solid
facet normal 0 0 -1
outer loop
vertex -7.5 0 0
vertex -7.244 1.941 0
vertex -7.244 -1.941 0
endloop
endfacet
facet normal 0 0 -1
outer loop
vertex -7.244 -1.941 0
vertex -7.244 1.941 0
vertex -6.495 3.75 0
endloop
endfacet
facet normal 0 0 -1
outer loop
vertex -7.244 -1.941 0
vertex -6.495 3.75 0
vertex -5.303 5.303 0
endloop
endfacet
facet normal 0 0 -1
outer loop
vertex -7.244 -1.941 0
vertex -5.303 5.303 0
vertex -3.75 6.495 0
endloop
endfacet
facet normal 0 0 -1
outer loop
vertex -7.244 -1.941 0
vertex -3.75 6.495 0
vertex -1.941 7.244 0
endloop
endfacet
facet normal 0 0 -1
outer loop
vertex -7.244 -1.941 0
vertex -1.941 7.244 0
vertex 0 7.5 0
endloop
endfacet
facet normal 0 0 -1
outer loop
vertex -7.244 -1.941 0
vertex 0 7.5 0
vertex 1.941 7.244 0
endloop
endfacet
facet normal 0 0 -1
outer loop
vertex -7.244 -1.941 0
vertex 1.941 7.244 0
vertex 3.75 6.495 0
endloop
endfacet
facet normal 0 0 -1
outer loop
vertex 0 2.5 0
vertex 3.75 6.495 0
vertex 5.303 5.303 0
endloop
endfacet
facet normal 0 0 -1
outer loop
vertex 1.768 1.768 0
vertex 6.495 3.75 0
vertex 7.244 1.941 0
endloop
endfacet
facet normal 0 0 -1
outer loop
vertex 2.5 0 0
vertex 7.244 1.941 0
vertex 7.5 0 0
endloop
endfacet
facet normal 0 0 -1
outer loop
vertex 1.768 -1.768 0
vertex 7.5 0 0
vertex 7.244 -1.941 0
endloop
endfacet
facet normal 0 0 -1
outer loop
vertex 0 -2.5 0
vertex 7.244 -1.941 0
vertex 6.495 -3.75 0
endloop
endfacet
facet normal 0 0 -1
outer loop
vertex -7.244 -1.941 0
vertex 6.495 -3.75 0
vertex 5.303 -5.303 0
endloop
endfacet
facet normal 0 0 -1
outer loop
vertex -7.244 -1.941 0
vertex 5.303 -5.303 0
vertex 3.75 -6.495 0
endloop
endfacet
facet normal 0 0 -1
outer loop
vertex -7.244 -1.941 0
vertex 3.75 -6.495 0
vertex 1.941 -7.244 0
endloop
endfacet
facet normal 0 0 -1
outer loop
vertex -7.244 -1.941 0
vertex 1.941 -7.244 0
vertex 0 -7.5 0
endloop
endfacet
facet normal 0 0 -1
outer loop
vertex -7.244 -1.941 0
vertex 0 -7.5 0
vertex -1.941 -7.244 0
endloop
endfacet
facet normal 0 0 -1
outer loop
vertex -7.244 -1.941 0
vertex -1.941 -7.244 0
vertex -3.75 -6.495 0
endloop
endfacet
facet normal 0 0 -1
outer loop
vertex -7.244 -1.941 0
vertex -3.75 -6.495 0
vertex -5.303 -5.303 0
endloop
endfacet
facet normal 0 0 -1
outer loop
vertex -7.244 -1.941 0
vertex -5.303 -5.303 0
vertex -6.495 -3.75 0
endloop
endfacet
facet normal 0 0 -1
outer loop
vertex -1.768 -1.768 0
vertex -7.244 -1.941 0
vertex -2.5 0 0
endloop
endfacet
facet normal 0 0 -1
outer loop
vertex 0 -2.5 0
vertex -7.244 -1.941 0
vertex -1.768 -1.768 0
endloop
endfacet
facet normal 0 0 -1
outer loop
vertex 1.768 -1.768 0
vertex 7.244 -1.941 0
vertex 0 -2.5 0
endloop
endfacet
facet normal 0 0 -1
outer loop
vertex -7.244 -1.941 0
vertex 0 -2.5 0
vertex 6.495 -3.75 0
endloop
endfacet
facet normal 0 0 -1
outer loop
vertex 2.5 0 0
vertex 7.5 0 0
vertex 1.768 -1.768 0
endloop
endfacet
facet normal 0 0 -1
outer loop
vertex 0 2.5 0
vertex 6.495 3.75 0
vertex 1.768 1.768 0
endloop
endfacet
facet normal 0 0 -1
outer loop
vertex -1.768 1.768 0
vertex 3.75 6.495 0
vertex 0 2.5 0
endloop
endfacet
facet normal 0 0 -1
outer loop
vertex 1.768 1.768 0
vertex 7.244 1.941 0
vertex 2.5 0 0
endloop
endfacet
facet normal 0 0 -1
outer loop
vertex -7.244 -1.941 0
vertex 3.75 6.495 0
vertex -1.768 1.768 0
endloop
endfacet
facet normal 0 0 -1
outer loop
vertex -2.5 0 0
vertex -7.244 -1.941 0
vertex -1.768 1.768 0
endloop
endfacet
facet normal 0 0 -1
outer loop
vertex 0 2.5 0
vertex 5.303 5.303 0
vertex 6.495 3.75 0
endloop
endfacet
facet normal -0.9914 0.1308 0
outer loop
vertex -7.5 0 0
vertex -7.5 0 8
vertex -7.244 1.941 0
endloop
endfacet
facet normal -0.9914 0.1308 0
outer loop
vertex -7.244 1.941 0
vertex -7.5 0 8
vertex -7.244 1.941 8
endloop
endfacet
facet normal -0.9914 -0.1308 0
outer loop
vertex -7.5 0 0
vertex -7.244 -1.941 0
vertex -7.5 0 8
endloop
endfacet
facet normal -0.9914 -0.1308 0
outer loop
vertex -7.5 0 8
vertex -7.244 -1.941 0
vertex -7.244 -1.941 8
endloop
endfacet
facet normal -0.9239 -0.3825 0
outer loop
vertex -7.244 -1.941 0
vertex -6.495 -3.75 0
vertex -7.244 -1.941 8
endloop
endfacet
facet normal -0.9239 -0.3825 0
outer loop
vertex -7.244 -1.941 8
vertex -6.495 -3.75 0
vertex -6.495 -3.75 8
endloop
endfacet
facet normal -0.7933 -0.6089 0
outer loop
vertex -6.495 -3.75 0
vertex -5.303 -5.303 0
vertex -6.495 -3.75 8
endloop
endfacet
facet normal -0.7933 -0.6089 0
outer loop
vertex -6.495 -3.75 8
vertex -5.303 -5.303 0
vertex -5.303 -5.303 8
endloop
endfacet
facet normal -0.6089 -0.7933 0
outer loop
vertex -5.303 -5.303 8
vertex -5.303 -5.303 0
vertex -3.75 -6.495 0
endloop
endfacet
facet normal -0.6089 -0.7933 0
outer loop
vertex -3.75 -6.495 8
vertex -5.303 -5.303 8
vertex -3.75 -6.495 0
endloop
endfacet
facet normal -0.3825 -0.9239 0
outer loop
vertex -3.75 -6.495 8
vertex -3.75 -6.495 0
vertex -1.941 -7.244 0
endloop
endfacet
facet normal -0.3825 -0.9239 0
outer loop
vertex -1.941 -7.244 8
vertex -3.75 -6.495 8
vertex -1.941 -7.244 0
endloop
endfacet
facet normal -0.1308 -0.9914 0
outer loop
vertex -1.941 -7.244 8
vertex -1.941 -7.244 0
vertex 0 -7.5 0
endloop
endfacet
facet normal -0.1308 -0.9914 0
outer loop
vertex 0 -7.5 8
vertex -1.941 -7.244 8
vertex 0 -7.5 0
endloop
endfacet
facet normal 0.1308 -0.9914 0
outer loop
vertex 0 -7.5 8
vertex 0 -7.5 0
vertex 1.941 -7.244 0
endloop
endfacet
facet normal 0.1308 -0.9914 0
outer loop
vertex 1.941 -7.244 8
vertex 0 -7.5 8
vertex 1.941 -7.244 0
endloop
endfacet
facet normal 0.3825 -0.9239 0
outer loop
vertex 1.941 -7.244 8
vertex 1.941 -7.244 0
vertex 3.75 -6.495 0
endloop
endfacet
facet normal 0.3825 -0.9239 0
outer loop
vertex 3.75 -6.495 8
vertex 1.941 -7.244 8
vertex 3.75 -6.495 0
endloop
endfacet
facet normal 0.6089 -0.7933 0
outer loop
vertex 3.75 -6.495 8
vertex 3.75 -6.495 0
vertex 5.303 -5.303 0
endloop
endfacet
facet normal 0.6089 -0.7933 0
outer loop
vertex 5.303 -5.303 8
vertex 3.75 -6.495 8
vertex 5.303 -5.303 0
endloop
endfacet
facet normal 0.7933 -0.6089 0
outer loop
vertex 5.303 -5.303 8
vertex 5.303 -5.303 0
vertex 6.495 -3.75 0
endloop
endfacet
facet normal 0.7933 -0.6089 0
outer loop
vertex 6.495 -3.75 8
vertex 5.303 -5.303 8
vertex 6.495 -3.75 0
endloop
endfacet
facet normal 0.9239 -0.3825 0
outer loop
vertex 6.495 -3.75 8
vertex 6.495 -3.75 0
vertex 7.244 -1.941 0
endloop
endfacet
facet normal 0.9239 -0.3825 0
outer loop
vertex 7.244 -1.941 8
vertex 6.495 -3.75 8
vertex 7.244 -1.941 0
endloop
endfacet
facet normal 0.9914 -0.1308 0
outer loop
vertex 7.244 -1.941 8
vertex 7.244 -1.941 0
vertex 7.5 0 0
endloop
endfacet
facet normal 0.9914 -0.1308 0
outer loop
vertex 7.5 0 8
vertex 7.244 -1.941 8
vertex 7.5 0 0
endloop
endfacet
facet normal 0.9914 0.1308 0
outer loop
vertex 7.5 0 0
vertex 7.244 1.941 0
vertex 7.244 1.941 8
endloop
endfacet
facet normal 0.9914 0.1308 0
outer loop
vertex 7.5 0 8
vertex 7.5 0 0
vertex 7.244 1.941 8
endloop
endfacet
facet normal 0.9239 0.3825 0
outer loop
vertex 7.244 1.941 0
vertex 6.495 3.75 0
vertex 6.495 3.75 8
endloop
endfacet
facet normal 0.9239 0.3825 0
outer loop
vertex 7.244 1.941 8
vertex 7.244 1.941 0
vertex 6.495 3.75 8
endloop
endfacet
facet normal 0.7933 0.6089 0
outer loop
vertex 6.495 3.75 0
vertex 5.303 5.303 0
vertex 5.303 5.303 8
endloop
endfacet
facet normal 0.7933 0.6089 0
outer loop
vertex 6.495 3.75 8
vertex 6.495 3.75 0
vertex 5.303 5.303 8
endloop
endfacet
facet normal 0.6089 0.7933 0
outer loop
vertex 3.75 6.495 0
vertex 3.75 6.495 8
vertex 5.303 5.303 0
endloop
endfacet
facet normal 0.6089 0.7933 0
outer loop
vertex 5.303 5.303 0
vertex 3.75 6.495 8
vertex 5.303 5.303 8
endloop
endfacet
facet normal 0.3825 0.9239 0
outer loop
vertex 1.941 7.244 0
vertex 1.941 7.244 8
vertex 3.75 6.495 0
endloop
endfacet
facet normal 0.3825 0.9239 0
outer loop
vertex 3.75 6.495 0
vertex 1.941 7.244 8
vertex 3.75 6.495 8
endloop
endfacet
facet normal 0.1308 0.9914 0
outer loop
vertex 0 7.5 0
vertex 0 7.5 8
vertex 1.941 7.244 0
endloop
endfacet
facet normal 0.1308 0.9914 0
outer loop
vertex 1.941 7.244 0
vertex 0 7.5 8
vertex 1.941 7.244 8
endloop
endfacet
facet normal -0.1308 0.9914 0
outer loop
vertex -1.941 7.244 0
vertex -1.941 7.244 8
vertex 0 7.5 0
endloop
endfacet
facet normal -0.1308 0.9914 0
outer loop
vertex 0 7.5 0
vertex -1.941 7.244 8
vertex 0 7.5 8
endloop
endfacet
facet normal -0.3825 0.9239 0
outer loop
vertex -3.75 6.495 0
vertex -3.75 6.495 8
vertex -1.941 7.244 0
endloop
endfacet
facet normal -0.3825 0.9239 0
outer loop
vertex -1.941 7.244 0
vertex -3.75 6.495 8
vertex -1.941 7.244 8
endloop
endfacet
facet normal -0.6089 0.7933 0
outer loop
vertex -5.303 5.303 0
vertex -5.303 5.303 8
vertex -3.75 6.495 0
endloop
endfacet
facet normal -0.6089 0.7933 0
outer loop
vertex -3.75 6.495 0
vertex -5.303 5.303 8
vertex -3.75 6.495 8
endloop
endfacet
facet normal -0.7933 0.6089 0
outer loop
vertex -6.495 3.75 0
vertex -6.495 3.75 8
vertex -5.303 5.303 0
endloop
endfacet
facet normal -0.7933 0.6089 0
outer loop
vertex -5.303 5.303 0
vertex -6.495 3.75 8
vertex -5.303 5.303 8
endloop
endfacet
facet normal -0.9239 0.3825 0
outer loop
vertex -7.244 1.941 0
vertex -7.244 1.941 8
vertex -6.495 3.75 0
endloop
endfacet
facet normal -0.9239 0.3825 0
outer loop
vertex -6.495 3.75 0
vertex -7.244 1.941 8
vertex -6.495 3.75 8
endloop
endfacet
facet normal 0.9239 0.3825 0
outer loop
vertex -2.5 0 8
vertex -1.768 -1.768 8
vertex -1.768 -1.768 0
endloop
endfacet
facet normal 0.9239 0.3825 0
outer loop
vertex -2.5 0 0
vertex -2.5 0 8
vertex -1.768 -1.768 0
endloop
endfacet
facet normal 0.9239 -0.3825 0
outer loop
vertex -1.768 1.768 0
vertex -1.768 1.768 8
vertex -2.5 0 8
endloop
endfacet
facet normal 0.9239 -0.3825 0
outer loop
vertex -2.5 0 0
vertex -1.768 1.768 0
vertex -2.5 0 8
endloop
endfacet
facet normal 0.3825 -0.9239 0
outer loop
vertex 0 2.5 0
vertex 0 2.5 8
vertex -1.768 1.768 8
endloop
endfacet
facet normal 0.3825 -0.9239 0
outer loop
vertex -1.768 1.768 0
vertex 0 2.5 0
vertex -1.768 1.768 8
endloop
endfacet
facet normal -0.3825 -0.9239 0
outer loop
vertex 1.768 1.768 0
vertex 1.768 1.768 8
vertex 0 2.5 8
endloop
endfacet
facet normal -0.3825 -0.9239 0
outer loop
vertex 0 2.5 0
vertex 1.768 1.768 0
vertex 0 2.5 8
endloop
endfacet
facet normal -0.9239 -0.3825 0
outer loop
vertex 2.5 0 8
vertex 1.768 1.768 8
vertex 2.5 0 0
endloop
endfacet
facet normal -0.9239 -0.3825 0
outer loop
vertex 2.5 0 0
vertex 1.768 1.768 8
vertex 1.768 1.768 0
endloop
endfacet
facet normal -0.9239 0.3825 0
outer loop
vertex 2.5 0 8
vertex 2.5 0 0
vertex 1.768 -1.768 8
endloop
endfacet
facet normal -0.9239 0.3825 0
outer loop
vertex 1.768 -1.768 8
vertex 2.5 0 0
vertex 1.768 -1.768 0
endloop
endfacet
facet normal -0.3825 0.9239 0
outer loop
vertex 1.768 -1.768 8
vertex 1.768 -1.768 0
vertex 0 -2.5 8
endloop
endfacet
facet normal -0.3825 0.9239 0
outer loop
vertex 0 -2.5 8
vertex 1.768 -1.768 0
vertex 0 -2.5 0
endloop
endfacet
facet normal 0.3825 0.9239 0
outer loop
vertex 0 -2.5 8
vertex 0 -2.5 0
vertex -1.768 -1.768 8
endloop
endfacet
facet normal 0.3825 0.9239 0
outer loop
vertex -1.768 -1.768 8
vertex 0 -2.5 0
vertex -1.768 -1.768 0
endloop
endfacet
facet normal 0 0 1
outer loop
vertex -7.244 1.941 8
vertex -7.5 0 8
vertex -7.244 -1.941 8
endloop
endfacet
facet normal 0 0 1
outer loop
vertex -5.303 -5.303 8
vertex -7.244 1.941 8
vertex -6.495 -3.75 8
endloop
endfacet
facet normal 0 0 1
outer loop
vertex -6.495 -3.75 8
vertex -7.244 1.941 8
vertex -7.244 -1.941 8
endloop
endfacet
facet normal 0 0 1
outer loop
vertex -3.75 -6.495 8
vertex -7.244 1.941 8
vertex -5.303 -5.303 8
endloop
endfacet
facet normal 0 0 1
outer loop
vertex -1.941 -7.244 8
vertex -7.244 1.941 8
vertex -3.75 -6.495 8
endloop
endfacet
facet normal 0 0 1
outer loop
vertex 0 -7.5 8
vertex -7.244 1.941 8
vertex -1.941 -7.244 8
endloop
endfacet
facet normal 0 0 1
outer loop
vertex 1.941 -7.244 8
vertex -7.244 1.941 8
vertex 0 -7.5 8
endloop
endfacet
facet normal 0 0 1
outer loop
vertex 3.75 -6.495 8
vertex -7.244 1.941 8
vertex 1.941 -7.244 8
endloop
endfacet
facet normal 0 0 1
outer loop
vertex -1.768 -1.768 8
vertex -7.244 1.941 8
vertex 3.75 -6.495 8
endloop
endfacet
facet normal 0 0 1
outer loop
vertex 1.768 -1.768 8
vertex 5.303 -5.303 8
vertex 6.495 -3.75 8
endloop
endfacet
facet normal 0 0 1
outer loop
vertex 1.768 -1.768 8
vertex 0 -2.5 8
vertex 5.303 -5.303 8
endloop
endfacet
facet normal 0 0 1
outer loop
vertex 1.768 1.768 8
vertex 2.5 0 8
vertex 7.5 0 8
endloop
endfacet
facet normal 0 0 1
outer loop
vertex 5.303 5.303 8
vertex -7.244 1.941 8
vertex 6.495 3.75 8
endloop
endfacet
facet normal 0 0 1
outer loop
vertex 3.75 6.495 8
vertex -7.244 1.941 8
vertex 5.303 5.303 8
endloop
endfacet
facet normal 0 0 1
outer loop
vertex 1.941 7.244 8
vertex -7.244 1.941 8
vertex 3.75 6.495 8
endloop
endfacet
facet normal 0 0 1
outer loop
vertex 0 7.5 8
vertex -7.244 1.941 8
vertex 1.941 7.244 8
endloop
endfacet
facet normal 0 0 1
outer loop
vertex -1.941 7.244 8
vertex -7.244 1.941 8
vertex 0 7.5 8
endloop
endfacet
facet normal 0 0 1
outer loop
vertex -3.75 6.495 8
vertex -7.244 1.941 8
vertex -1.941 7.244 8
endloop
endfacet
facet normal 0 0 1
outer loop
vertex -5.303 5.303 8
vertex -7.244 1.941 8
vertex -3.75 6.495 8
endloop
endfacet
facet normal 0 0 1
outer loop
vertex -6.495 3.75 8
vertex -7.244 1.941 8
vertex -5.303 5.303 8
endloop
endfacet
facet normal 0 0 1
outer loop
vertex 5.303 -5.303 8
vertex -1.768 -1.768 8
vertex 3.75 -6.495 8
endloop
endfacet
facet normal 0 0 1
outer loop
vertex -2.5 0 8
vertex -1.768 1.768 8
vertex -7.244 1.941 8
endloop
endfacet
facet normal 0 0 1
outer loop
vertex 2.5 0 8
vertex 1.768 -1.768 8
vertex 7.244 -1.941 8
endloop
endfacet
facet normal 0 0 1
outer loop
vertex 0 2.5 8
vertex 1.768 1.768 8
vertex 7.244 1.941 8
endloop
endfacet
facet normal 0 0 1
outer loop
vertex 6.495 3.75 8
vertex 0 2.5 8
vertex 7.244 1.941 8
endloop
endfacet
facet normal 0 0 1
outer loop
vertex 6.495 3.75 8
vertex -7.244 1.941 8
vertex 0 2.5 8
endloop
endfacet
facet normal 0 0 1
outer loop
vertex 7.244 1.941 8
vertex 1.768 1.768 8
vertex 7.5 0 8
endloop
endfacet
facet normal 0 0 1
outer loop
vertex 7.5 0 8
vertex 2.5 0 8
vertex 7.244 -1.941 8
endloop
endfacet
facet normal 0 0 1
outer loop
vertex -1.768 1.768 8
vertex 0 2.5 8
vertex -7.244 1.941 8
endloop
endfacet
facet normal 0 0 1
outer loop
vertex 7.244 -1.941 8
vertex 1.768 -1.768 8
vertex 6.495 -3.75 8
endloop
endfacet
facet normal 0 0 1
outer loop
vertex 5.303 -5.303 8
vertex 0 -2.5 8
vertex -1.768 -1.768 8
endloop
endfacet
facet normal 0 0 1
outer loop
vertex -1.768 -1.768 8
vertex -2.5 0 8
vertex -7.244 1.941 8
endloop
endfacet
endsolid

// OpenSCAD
difference(){
cylinder(r=7.5,h=8);
cylinder(r=2.5,h=8);
}
//16*4*8
